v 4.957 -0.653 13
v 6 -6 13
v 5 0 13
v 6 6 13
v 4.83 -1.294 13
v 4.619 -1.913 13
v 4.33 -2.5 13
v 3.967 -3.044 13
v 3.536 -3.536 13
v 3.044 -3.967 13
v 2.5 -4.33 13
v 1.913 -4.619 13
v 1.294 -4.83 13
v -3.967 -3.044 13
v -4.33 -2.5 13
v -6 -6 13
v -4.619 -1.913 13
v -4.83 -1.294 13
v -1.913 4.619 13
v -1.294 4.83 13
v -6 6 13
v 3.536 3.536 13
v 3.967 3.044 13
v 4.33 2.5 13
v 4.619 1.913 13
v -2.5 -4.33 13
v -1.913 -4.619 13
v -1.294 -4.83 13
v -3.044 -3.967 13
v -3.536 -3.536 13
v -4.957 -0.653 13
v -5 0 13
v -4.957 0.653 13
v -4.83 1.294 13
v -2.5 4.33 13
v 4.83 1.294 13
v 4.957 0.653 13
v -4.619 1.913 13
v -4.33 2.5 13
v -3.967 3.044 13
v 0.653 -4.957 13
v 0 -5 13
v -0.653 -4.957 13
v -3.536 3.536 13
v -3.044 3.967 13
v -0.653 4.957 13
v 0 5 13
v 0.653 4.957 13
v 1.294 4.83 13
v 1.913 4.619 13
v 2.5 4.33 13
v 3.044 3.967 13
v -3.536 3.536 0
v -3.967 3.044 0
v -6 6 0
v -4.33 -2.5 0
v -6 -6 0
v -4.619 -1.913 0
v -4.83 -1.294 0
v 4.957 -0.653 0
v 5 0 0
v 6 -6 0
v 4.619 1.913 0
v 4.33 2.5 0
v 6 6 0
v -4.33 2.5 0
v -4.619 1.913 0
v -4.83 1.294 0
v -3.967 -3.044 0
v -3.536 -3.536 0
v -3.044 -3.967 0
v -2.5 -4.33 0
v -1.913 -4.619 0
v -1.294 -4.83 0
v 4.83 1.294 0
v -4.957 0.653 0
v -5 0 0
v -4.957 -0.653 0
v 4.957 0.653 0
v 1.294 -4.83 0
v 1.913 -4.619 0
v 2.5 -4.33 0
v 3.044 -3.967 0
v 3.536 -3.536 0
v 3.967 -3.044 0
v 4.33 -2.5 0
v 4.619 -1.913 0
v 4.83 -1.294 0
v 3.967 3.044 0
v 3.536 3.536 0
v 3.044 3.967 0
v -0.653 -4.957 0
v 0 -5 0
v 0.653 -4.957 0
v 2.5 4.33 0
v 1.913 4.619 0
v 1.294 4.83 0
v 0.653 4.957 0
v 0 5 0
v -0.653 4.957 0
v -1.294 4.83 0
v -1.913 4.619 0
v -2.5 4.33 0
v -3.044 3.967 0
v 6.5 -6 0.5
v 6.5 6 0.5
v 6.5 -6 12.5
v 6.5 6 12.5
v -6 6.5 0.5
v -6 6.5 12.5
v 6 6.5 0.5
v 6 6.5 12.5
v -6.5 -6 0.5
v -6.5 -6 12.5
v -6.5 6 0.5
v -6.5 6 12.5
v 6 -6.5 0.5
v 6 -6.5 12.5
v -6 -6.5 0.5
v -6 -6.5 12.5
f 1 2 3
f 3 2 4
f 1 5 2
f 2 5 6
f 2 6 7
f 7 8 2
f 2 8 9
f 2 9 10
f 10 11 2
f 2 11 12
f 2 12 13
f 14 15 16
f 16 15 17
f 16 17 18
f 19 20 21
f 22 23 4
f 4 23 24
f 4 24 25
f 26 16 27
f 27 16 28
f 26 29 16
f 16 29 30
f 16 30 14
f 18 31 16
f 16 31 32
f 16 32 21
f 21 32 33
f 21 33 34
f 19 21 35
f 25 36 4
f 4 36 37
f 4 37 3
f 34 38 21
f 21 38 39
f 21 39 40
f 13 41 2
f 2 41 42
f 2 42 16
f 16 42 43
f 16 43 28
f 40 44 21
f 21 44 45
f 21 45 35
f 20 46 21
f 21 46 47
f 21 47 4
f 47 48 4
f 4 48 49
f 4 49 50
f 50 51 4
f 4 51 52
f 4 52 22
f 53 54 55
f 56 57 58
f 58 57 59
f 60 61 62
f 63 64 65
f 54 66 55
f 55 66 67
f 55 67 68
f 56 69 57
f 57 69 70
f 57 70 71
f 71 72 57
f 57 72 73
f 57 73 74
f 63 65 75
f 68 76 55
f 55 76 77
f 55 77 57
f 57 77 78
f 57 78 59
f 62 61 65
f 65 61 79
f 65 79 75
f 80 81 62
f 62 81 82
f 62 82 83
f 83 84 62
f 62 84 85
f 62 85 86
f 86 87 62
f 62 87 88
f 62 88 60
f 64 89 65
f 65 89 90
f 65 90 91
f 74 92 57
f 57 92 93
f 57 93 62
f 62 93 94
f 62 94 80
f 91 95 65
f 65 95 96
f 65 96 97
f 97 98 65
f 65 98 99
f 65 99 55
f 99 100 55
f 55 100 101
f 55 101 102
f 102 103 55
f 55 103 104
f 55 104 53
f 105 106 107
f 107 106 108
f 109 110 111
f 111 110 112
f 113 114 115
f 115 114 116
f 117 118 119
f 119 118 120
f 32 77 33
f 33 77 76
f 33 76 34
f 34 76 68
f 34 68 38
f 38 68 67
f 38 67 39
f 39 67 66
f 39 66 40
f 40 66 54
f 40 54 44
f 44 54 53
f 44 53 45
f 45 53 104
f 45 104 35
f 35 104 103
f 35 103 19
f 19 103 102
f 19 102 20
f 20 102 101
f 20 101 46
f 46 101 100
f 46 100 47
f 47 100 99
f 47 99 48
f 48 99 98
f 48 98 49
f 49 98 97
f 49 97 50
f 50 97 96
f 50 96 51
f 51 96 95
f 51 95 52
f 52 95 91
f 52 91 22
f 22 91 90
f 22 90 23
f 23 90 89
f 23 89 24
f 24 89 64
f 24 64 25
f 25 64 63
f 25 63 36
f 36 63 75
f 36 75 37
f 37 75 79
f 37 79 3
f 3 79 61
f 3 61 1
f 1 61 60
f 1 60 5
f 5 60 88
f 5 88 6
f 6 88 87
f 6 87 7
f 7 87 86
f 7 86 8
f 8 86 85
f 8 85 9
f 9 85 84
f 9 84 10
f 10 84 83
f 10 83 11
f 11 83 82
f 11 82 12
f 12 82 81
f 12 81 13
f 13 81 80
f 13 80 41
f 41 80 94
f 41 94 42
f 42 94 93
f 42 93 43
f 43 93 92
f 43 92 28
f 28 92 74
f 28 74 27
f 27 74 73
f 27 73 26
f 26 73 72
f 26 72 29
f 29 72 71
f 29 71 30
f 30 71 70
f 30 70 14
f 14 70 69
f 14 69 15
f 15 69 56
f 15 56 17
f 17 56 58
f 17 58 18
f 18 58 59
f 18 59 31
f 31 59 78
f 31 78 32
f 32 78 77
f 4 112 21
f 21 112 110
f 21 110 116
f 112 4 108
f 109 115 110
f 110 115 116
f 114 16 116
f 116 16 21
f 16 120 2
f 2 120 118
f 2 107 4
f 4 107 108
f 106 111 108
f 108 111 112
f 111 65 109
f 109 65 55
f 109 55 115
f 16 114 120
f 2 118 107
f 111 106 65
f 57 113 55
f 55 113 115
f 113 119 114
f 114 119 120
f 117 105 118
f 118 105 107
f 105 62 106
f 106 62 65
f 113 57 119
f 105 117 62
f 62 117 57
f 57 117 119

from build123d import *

# Parameters (mm, degrees)
SKETCH1_W           = 13
SKETCH1_H           = 13
SKETCH1_R           = 5
BOSS_EXTRUDE1_DEPTH = 13
CHAMFER1_SIZE       = 0.5


with BuildPart() as part:
    # Sketch1 → Boss-Extrude1 (new body)
    with BuildSketch(Plane.XY):
        Rectangle(SKETCH1_W, SKETCH1_H)
        with Locations(Location((0, 0, 0), (0, 0, 180))):
            Circle(SKETCH1_R, mode=Mode.SUBTRACT)
    extrude(amount=BOSS_EXTRUDE1_DEPTH)

    # Chamfer1
    chamfer1_edges = [part.edges().sort_by_distance(p)[0] for p in [
        (-6.5, 0, 13),
        (0, -6.5, 13),
        (6.5, 0, 13),
        (0, -6.5, 0),
        (-6.5, 0, 0),
        (0, 6.5, 0),
        (6.5, 0, 0),
        (6.5, -6.5, 6.5),
        (-6.5, -6.5, 6.5),
        (-6.5, 6.5, 6.5),
        (6.5, 6.5, 6.5),
        (0, 6.5, 13),
    ]]
    chamfer(chamfer1_edges, length=CHAMFER1_SIZE)


solid = part.part
